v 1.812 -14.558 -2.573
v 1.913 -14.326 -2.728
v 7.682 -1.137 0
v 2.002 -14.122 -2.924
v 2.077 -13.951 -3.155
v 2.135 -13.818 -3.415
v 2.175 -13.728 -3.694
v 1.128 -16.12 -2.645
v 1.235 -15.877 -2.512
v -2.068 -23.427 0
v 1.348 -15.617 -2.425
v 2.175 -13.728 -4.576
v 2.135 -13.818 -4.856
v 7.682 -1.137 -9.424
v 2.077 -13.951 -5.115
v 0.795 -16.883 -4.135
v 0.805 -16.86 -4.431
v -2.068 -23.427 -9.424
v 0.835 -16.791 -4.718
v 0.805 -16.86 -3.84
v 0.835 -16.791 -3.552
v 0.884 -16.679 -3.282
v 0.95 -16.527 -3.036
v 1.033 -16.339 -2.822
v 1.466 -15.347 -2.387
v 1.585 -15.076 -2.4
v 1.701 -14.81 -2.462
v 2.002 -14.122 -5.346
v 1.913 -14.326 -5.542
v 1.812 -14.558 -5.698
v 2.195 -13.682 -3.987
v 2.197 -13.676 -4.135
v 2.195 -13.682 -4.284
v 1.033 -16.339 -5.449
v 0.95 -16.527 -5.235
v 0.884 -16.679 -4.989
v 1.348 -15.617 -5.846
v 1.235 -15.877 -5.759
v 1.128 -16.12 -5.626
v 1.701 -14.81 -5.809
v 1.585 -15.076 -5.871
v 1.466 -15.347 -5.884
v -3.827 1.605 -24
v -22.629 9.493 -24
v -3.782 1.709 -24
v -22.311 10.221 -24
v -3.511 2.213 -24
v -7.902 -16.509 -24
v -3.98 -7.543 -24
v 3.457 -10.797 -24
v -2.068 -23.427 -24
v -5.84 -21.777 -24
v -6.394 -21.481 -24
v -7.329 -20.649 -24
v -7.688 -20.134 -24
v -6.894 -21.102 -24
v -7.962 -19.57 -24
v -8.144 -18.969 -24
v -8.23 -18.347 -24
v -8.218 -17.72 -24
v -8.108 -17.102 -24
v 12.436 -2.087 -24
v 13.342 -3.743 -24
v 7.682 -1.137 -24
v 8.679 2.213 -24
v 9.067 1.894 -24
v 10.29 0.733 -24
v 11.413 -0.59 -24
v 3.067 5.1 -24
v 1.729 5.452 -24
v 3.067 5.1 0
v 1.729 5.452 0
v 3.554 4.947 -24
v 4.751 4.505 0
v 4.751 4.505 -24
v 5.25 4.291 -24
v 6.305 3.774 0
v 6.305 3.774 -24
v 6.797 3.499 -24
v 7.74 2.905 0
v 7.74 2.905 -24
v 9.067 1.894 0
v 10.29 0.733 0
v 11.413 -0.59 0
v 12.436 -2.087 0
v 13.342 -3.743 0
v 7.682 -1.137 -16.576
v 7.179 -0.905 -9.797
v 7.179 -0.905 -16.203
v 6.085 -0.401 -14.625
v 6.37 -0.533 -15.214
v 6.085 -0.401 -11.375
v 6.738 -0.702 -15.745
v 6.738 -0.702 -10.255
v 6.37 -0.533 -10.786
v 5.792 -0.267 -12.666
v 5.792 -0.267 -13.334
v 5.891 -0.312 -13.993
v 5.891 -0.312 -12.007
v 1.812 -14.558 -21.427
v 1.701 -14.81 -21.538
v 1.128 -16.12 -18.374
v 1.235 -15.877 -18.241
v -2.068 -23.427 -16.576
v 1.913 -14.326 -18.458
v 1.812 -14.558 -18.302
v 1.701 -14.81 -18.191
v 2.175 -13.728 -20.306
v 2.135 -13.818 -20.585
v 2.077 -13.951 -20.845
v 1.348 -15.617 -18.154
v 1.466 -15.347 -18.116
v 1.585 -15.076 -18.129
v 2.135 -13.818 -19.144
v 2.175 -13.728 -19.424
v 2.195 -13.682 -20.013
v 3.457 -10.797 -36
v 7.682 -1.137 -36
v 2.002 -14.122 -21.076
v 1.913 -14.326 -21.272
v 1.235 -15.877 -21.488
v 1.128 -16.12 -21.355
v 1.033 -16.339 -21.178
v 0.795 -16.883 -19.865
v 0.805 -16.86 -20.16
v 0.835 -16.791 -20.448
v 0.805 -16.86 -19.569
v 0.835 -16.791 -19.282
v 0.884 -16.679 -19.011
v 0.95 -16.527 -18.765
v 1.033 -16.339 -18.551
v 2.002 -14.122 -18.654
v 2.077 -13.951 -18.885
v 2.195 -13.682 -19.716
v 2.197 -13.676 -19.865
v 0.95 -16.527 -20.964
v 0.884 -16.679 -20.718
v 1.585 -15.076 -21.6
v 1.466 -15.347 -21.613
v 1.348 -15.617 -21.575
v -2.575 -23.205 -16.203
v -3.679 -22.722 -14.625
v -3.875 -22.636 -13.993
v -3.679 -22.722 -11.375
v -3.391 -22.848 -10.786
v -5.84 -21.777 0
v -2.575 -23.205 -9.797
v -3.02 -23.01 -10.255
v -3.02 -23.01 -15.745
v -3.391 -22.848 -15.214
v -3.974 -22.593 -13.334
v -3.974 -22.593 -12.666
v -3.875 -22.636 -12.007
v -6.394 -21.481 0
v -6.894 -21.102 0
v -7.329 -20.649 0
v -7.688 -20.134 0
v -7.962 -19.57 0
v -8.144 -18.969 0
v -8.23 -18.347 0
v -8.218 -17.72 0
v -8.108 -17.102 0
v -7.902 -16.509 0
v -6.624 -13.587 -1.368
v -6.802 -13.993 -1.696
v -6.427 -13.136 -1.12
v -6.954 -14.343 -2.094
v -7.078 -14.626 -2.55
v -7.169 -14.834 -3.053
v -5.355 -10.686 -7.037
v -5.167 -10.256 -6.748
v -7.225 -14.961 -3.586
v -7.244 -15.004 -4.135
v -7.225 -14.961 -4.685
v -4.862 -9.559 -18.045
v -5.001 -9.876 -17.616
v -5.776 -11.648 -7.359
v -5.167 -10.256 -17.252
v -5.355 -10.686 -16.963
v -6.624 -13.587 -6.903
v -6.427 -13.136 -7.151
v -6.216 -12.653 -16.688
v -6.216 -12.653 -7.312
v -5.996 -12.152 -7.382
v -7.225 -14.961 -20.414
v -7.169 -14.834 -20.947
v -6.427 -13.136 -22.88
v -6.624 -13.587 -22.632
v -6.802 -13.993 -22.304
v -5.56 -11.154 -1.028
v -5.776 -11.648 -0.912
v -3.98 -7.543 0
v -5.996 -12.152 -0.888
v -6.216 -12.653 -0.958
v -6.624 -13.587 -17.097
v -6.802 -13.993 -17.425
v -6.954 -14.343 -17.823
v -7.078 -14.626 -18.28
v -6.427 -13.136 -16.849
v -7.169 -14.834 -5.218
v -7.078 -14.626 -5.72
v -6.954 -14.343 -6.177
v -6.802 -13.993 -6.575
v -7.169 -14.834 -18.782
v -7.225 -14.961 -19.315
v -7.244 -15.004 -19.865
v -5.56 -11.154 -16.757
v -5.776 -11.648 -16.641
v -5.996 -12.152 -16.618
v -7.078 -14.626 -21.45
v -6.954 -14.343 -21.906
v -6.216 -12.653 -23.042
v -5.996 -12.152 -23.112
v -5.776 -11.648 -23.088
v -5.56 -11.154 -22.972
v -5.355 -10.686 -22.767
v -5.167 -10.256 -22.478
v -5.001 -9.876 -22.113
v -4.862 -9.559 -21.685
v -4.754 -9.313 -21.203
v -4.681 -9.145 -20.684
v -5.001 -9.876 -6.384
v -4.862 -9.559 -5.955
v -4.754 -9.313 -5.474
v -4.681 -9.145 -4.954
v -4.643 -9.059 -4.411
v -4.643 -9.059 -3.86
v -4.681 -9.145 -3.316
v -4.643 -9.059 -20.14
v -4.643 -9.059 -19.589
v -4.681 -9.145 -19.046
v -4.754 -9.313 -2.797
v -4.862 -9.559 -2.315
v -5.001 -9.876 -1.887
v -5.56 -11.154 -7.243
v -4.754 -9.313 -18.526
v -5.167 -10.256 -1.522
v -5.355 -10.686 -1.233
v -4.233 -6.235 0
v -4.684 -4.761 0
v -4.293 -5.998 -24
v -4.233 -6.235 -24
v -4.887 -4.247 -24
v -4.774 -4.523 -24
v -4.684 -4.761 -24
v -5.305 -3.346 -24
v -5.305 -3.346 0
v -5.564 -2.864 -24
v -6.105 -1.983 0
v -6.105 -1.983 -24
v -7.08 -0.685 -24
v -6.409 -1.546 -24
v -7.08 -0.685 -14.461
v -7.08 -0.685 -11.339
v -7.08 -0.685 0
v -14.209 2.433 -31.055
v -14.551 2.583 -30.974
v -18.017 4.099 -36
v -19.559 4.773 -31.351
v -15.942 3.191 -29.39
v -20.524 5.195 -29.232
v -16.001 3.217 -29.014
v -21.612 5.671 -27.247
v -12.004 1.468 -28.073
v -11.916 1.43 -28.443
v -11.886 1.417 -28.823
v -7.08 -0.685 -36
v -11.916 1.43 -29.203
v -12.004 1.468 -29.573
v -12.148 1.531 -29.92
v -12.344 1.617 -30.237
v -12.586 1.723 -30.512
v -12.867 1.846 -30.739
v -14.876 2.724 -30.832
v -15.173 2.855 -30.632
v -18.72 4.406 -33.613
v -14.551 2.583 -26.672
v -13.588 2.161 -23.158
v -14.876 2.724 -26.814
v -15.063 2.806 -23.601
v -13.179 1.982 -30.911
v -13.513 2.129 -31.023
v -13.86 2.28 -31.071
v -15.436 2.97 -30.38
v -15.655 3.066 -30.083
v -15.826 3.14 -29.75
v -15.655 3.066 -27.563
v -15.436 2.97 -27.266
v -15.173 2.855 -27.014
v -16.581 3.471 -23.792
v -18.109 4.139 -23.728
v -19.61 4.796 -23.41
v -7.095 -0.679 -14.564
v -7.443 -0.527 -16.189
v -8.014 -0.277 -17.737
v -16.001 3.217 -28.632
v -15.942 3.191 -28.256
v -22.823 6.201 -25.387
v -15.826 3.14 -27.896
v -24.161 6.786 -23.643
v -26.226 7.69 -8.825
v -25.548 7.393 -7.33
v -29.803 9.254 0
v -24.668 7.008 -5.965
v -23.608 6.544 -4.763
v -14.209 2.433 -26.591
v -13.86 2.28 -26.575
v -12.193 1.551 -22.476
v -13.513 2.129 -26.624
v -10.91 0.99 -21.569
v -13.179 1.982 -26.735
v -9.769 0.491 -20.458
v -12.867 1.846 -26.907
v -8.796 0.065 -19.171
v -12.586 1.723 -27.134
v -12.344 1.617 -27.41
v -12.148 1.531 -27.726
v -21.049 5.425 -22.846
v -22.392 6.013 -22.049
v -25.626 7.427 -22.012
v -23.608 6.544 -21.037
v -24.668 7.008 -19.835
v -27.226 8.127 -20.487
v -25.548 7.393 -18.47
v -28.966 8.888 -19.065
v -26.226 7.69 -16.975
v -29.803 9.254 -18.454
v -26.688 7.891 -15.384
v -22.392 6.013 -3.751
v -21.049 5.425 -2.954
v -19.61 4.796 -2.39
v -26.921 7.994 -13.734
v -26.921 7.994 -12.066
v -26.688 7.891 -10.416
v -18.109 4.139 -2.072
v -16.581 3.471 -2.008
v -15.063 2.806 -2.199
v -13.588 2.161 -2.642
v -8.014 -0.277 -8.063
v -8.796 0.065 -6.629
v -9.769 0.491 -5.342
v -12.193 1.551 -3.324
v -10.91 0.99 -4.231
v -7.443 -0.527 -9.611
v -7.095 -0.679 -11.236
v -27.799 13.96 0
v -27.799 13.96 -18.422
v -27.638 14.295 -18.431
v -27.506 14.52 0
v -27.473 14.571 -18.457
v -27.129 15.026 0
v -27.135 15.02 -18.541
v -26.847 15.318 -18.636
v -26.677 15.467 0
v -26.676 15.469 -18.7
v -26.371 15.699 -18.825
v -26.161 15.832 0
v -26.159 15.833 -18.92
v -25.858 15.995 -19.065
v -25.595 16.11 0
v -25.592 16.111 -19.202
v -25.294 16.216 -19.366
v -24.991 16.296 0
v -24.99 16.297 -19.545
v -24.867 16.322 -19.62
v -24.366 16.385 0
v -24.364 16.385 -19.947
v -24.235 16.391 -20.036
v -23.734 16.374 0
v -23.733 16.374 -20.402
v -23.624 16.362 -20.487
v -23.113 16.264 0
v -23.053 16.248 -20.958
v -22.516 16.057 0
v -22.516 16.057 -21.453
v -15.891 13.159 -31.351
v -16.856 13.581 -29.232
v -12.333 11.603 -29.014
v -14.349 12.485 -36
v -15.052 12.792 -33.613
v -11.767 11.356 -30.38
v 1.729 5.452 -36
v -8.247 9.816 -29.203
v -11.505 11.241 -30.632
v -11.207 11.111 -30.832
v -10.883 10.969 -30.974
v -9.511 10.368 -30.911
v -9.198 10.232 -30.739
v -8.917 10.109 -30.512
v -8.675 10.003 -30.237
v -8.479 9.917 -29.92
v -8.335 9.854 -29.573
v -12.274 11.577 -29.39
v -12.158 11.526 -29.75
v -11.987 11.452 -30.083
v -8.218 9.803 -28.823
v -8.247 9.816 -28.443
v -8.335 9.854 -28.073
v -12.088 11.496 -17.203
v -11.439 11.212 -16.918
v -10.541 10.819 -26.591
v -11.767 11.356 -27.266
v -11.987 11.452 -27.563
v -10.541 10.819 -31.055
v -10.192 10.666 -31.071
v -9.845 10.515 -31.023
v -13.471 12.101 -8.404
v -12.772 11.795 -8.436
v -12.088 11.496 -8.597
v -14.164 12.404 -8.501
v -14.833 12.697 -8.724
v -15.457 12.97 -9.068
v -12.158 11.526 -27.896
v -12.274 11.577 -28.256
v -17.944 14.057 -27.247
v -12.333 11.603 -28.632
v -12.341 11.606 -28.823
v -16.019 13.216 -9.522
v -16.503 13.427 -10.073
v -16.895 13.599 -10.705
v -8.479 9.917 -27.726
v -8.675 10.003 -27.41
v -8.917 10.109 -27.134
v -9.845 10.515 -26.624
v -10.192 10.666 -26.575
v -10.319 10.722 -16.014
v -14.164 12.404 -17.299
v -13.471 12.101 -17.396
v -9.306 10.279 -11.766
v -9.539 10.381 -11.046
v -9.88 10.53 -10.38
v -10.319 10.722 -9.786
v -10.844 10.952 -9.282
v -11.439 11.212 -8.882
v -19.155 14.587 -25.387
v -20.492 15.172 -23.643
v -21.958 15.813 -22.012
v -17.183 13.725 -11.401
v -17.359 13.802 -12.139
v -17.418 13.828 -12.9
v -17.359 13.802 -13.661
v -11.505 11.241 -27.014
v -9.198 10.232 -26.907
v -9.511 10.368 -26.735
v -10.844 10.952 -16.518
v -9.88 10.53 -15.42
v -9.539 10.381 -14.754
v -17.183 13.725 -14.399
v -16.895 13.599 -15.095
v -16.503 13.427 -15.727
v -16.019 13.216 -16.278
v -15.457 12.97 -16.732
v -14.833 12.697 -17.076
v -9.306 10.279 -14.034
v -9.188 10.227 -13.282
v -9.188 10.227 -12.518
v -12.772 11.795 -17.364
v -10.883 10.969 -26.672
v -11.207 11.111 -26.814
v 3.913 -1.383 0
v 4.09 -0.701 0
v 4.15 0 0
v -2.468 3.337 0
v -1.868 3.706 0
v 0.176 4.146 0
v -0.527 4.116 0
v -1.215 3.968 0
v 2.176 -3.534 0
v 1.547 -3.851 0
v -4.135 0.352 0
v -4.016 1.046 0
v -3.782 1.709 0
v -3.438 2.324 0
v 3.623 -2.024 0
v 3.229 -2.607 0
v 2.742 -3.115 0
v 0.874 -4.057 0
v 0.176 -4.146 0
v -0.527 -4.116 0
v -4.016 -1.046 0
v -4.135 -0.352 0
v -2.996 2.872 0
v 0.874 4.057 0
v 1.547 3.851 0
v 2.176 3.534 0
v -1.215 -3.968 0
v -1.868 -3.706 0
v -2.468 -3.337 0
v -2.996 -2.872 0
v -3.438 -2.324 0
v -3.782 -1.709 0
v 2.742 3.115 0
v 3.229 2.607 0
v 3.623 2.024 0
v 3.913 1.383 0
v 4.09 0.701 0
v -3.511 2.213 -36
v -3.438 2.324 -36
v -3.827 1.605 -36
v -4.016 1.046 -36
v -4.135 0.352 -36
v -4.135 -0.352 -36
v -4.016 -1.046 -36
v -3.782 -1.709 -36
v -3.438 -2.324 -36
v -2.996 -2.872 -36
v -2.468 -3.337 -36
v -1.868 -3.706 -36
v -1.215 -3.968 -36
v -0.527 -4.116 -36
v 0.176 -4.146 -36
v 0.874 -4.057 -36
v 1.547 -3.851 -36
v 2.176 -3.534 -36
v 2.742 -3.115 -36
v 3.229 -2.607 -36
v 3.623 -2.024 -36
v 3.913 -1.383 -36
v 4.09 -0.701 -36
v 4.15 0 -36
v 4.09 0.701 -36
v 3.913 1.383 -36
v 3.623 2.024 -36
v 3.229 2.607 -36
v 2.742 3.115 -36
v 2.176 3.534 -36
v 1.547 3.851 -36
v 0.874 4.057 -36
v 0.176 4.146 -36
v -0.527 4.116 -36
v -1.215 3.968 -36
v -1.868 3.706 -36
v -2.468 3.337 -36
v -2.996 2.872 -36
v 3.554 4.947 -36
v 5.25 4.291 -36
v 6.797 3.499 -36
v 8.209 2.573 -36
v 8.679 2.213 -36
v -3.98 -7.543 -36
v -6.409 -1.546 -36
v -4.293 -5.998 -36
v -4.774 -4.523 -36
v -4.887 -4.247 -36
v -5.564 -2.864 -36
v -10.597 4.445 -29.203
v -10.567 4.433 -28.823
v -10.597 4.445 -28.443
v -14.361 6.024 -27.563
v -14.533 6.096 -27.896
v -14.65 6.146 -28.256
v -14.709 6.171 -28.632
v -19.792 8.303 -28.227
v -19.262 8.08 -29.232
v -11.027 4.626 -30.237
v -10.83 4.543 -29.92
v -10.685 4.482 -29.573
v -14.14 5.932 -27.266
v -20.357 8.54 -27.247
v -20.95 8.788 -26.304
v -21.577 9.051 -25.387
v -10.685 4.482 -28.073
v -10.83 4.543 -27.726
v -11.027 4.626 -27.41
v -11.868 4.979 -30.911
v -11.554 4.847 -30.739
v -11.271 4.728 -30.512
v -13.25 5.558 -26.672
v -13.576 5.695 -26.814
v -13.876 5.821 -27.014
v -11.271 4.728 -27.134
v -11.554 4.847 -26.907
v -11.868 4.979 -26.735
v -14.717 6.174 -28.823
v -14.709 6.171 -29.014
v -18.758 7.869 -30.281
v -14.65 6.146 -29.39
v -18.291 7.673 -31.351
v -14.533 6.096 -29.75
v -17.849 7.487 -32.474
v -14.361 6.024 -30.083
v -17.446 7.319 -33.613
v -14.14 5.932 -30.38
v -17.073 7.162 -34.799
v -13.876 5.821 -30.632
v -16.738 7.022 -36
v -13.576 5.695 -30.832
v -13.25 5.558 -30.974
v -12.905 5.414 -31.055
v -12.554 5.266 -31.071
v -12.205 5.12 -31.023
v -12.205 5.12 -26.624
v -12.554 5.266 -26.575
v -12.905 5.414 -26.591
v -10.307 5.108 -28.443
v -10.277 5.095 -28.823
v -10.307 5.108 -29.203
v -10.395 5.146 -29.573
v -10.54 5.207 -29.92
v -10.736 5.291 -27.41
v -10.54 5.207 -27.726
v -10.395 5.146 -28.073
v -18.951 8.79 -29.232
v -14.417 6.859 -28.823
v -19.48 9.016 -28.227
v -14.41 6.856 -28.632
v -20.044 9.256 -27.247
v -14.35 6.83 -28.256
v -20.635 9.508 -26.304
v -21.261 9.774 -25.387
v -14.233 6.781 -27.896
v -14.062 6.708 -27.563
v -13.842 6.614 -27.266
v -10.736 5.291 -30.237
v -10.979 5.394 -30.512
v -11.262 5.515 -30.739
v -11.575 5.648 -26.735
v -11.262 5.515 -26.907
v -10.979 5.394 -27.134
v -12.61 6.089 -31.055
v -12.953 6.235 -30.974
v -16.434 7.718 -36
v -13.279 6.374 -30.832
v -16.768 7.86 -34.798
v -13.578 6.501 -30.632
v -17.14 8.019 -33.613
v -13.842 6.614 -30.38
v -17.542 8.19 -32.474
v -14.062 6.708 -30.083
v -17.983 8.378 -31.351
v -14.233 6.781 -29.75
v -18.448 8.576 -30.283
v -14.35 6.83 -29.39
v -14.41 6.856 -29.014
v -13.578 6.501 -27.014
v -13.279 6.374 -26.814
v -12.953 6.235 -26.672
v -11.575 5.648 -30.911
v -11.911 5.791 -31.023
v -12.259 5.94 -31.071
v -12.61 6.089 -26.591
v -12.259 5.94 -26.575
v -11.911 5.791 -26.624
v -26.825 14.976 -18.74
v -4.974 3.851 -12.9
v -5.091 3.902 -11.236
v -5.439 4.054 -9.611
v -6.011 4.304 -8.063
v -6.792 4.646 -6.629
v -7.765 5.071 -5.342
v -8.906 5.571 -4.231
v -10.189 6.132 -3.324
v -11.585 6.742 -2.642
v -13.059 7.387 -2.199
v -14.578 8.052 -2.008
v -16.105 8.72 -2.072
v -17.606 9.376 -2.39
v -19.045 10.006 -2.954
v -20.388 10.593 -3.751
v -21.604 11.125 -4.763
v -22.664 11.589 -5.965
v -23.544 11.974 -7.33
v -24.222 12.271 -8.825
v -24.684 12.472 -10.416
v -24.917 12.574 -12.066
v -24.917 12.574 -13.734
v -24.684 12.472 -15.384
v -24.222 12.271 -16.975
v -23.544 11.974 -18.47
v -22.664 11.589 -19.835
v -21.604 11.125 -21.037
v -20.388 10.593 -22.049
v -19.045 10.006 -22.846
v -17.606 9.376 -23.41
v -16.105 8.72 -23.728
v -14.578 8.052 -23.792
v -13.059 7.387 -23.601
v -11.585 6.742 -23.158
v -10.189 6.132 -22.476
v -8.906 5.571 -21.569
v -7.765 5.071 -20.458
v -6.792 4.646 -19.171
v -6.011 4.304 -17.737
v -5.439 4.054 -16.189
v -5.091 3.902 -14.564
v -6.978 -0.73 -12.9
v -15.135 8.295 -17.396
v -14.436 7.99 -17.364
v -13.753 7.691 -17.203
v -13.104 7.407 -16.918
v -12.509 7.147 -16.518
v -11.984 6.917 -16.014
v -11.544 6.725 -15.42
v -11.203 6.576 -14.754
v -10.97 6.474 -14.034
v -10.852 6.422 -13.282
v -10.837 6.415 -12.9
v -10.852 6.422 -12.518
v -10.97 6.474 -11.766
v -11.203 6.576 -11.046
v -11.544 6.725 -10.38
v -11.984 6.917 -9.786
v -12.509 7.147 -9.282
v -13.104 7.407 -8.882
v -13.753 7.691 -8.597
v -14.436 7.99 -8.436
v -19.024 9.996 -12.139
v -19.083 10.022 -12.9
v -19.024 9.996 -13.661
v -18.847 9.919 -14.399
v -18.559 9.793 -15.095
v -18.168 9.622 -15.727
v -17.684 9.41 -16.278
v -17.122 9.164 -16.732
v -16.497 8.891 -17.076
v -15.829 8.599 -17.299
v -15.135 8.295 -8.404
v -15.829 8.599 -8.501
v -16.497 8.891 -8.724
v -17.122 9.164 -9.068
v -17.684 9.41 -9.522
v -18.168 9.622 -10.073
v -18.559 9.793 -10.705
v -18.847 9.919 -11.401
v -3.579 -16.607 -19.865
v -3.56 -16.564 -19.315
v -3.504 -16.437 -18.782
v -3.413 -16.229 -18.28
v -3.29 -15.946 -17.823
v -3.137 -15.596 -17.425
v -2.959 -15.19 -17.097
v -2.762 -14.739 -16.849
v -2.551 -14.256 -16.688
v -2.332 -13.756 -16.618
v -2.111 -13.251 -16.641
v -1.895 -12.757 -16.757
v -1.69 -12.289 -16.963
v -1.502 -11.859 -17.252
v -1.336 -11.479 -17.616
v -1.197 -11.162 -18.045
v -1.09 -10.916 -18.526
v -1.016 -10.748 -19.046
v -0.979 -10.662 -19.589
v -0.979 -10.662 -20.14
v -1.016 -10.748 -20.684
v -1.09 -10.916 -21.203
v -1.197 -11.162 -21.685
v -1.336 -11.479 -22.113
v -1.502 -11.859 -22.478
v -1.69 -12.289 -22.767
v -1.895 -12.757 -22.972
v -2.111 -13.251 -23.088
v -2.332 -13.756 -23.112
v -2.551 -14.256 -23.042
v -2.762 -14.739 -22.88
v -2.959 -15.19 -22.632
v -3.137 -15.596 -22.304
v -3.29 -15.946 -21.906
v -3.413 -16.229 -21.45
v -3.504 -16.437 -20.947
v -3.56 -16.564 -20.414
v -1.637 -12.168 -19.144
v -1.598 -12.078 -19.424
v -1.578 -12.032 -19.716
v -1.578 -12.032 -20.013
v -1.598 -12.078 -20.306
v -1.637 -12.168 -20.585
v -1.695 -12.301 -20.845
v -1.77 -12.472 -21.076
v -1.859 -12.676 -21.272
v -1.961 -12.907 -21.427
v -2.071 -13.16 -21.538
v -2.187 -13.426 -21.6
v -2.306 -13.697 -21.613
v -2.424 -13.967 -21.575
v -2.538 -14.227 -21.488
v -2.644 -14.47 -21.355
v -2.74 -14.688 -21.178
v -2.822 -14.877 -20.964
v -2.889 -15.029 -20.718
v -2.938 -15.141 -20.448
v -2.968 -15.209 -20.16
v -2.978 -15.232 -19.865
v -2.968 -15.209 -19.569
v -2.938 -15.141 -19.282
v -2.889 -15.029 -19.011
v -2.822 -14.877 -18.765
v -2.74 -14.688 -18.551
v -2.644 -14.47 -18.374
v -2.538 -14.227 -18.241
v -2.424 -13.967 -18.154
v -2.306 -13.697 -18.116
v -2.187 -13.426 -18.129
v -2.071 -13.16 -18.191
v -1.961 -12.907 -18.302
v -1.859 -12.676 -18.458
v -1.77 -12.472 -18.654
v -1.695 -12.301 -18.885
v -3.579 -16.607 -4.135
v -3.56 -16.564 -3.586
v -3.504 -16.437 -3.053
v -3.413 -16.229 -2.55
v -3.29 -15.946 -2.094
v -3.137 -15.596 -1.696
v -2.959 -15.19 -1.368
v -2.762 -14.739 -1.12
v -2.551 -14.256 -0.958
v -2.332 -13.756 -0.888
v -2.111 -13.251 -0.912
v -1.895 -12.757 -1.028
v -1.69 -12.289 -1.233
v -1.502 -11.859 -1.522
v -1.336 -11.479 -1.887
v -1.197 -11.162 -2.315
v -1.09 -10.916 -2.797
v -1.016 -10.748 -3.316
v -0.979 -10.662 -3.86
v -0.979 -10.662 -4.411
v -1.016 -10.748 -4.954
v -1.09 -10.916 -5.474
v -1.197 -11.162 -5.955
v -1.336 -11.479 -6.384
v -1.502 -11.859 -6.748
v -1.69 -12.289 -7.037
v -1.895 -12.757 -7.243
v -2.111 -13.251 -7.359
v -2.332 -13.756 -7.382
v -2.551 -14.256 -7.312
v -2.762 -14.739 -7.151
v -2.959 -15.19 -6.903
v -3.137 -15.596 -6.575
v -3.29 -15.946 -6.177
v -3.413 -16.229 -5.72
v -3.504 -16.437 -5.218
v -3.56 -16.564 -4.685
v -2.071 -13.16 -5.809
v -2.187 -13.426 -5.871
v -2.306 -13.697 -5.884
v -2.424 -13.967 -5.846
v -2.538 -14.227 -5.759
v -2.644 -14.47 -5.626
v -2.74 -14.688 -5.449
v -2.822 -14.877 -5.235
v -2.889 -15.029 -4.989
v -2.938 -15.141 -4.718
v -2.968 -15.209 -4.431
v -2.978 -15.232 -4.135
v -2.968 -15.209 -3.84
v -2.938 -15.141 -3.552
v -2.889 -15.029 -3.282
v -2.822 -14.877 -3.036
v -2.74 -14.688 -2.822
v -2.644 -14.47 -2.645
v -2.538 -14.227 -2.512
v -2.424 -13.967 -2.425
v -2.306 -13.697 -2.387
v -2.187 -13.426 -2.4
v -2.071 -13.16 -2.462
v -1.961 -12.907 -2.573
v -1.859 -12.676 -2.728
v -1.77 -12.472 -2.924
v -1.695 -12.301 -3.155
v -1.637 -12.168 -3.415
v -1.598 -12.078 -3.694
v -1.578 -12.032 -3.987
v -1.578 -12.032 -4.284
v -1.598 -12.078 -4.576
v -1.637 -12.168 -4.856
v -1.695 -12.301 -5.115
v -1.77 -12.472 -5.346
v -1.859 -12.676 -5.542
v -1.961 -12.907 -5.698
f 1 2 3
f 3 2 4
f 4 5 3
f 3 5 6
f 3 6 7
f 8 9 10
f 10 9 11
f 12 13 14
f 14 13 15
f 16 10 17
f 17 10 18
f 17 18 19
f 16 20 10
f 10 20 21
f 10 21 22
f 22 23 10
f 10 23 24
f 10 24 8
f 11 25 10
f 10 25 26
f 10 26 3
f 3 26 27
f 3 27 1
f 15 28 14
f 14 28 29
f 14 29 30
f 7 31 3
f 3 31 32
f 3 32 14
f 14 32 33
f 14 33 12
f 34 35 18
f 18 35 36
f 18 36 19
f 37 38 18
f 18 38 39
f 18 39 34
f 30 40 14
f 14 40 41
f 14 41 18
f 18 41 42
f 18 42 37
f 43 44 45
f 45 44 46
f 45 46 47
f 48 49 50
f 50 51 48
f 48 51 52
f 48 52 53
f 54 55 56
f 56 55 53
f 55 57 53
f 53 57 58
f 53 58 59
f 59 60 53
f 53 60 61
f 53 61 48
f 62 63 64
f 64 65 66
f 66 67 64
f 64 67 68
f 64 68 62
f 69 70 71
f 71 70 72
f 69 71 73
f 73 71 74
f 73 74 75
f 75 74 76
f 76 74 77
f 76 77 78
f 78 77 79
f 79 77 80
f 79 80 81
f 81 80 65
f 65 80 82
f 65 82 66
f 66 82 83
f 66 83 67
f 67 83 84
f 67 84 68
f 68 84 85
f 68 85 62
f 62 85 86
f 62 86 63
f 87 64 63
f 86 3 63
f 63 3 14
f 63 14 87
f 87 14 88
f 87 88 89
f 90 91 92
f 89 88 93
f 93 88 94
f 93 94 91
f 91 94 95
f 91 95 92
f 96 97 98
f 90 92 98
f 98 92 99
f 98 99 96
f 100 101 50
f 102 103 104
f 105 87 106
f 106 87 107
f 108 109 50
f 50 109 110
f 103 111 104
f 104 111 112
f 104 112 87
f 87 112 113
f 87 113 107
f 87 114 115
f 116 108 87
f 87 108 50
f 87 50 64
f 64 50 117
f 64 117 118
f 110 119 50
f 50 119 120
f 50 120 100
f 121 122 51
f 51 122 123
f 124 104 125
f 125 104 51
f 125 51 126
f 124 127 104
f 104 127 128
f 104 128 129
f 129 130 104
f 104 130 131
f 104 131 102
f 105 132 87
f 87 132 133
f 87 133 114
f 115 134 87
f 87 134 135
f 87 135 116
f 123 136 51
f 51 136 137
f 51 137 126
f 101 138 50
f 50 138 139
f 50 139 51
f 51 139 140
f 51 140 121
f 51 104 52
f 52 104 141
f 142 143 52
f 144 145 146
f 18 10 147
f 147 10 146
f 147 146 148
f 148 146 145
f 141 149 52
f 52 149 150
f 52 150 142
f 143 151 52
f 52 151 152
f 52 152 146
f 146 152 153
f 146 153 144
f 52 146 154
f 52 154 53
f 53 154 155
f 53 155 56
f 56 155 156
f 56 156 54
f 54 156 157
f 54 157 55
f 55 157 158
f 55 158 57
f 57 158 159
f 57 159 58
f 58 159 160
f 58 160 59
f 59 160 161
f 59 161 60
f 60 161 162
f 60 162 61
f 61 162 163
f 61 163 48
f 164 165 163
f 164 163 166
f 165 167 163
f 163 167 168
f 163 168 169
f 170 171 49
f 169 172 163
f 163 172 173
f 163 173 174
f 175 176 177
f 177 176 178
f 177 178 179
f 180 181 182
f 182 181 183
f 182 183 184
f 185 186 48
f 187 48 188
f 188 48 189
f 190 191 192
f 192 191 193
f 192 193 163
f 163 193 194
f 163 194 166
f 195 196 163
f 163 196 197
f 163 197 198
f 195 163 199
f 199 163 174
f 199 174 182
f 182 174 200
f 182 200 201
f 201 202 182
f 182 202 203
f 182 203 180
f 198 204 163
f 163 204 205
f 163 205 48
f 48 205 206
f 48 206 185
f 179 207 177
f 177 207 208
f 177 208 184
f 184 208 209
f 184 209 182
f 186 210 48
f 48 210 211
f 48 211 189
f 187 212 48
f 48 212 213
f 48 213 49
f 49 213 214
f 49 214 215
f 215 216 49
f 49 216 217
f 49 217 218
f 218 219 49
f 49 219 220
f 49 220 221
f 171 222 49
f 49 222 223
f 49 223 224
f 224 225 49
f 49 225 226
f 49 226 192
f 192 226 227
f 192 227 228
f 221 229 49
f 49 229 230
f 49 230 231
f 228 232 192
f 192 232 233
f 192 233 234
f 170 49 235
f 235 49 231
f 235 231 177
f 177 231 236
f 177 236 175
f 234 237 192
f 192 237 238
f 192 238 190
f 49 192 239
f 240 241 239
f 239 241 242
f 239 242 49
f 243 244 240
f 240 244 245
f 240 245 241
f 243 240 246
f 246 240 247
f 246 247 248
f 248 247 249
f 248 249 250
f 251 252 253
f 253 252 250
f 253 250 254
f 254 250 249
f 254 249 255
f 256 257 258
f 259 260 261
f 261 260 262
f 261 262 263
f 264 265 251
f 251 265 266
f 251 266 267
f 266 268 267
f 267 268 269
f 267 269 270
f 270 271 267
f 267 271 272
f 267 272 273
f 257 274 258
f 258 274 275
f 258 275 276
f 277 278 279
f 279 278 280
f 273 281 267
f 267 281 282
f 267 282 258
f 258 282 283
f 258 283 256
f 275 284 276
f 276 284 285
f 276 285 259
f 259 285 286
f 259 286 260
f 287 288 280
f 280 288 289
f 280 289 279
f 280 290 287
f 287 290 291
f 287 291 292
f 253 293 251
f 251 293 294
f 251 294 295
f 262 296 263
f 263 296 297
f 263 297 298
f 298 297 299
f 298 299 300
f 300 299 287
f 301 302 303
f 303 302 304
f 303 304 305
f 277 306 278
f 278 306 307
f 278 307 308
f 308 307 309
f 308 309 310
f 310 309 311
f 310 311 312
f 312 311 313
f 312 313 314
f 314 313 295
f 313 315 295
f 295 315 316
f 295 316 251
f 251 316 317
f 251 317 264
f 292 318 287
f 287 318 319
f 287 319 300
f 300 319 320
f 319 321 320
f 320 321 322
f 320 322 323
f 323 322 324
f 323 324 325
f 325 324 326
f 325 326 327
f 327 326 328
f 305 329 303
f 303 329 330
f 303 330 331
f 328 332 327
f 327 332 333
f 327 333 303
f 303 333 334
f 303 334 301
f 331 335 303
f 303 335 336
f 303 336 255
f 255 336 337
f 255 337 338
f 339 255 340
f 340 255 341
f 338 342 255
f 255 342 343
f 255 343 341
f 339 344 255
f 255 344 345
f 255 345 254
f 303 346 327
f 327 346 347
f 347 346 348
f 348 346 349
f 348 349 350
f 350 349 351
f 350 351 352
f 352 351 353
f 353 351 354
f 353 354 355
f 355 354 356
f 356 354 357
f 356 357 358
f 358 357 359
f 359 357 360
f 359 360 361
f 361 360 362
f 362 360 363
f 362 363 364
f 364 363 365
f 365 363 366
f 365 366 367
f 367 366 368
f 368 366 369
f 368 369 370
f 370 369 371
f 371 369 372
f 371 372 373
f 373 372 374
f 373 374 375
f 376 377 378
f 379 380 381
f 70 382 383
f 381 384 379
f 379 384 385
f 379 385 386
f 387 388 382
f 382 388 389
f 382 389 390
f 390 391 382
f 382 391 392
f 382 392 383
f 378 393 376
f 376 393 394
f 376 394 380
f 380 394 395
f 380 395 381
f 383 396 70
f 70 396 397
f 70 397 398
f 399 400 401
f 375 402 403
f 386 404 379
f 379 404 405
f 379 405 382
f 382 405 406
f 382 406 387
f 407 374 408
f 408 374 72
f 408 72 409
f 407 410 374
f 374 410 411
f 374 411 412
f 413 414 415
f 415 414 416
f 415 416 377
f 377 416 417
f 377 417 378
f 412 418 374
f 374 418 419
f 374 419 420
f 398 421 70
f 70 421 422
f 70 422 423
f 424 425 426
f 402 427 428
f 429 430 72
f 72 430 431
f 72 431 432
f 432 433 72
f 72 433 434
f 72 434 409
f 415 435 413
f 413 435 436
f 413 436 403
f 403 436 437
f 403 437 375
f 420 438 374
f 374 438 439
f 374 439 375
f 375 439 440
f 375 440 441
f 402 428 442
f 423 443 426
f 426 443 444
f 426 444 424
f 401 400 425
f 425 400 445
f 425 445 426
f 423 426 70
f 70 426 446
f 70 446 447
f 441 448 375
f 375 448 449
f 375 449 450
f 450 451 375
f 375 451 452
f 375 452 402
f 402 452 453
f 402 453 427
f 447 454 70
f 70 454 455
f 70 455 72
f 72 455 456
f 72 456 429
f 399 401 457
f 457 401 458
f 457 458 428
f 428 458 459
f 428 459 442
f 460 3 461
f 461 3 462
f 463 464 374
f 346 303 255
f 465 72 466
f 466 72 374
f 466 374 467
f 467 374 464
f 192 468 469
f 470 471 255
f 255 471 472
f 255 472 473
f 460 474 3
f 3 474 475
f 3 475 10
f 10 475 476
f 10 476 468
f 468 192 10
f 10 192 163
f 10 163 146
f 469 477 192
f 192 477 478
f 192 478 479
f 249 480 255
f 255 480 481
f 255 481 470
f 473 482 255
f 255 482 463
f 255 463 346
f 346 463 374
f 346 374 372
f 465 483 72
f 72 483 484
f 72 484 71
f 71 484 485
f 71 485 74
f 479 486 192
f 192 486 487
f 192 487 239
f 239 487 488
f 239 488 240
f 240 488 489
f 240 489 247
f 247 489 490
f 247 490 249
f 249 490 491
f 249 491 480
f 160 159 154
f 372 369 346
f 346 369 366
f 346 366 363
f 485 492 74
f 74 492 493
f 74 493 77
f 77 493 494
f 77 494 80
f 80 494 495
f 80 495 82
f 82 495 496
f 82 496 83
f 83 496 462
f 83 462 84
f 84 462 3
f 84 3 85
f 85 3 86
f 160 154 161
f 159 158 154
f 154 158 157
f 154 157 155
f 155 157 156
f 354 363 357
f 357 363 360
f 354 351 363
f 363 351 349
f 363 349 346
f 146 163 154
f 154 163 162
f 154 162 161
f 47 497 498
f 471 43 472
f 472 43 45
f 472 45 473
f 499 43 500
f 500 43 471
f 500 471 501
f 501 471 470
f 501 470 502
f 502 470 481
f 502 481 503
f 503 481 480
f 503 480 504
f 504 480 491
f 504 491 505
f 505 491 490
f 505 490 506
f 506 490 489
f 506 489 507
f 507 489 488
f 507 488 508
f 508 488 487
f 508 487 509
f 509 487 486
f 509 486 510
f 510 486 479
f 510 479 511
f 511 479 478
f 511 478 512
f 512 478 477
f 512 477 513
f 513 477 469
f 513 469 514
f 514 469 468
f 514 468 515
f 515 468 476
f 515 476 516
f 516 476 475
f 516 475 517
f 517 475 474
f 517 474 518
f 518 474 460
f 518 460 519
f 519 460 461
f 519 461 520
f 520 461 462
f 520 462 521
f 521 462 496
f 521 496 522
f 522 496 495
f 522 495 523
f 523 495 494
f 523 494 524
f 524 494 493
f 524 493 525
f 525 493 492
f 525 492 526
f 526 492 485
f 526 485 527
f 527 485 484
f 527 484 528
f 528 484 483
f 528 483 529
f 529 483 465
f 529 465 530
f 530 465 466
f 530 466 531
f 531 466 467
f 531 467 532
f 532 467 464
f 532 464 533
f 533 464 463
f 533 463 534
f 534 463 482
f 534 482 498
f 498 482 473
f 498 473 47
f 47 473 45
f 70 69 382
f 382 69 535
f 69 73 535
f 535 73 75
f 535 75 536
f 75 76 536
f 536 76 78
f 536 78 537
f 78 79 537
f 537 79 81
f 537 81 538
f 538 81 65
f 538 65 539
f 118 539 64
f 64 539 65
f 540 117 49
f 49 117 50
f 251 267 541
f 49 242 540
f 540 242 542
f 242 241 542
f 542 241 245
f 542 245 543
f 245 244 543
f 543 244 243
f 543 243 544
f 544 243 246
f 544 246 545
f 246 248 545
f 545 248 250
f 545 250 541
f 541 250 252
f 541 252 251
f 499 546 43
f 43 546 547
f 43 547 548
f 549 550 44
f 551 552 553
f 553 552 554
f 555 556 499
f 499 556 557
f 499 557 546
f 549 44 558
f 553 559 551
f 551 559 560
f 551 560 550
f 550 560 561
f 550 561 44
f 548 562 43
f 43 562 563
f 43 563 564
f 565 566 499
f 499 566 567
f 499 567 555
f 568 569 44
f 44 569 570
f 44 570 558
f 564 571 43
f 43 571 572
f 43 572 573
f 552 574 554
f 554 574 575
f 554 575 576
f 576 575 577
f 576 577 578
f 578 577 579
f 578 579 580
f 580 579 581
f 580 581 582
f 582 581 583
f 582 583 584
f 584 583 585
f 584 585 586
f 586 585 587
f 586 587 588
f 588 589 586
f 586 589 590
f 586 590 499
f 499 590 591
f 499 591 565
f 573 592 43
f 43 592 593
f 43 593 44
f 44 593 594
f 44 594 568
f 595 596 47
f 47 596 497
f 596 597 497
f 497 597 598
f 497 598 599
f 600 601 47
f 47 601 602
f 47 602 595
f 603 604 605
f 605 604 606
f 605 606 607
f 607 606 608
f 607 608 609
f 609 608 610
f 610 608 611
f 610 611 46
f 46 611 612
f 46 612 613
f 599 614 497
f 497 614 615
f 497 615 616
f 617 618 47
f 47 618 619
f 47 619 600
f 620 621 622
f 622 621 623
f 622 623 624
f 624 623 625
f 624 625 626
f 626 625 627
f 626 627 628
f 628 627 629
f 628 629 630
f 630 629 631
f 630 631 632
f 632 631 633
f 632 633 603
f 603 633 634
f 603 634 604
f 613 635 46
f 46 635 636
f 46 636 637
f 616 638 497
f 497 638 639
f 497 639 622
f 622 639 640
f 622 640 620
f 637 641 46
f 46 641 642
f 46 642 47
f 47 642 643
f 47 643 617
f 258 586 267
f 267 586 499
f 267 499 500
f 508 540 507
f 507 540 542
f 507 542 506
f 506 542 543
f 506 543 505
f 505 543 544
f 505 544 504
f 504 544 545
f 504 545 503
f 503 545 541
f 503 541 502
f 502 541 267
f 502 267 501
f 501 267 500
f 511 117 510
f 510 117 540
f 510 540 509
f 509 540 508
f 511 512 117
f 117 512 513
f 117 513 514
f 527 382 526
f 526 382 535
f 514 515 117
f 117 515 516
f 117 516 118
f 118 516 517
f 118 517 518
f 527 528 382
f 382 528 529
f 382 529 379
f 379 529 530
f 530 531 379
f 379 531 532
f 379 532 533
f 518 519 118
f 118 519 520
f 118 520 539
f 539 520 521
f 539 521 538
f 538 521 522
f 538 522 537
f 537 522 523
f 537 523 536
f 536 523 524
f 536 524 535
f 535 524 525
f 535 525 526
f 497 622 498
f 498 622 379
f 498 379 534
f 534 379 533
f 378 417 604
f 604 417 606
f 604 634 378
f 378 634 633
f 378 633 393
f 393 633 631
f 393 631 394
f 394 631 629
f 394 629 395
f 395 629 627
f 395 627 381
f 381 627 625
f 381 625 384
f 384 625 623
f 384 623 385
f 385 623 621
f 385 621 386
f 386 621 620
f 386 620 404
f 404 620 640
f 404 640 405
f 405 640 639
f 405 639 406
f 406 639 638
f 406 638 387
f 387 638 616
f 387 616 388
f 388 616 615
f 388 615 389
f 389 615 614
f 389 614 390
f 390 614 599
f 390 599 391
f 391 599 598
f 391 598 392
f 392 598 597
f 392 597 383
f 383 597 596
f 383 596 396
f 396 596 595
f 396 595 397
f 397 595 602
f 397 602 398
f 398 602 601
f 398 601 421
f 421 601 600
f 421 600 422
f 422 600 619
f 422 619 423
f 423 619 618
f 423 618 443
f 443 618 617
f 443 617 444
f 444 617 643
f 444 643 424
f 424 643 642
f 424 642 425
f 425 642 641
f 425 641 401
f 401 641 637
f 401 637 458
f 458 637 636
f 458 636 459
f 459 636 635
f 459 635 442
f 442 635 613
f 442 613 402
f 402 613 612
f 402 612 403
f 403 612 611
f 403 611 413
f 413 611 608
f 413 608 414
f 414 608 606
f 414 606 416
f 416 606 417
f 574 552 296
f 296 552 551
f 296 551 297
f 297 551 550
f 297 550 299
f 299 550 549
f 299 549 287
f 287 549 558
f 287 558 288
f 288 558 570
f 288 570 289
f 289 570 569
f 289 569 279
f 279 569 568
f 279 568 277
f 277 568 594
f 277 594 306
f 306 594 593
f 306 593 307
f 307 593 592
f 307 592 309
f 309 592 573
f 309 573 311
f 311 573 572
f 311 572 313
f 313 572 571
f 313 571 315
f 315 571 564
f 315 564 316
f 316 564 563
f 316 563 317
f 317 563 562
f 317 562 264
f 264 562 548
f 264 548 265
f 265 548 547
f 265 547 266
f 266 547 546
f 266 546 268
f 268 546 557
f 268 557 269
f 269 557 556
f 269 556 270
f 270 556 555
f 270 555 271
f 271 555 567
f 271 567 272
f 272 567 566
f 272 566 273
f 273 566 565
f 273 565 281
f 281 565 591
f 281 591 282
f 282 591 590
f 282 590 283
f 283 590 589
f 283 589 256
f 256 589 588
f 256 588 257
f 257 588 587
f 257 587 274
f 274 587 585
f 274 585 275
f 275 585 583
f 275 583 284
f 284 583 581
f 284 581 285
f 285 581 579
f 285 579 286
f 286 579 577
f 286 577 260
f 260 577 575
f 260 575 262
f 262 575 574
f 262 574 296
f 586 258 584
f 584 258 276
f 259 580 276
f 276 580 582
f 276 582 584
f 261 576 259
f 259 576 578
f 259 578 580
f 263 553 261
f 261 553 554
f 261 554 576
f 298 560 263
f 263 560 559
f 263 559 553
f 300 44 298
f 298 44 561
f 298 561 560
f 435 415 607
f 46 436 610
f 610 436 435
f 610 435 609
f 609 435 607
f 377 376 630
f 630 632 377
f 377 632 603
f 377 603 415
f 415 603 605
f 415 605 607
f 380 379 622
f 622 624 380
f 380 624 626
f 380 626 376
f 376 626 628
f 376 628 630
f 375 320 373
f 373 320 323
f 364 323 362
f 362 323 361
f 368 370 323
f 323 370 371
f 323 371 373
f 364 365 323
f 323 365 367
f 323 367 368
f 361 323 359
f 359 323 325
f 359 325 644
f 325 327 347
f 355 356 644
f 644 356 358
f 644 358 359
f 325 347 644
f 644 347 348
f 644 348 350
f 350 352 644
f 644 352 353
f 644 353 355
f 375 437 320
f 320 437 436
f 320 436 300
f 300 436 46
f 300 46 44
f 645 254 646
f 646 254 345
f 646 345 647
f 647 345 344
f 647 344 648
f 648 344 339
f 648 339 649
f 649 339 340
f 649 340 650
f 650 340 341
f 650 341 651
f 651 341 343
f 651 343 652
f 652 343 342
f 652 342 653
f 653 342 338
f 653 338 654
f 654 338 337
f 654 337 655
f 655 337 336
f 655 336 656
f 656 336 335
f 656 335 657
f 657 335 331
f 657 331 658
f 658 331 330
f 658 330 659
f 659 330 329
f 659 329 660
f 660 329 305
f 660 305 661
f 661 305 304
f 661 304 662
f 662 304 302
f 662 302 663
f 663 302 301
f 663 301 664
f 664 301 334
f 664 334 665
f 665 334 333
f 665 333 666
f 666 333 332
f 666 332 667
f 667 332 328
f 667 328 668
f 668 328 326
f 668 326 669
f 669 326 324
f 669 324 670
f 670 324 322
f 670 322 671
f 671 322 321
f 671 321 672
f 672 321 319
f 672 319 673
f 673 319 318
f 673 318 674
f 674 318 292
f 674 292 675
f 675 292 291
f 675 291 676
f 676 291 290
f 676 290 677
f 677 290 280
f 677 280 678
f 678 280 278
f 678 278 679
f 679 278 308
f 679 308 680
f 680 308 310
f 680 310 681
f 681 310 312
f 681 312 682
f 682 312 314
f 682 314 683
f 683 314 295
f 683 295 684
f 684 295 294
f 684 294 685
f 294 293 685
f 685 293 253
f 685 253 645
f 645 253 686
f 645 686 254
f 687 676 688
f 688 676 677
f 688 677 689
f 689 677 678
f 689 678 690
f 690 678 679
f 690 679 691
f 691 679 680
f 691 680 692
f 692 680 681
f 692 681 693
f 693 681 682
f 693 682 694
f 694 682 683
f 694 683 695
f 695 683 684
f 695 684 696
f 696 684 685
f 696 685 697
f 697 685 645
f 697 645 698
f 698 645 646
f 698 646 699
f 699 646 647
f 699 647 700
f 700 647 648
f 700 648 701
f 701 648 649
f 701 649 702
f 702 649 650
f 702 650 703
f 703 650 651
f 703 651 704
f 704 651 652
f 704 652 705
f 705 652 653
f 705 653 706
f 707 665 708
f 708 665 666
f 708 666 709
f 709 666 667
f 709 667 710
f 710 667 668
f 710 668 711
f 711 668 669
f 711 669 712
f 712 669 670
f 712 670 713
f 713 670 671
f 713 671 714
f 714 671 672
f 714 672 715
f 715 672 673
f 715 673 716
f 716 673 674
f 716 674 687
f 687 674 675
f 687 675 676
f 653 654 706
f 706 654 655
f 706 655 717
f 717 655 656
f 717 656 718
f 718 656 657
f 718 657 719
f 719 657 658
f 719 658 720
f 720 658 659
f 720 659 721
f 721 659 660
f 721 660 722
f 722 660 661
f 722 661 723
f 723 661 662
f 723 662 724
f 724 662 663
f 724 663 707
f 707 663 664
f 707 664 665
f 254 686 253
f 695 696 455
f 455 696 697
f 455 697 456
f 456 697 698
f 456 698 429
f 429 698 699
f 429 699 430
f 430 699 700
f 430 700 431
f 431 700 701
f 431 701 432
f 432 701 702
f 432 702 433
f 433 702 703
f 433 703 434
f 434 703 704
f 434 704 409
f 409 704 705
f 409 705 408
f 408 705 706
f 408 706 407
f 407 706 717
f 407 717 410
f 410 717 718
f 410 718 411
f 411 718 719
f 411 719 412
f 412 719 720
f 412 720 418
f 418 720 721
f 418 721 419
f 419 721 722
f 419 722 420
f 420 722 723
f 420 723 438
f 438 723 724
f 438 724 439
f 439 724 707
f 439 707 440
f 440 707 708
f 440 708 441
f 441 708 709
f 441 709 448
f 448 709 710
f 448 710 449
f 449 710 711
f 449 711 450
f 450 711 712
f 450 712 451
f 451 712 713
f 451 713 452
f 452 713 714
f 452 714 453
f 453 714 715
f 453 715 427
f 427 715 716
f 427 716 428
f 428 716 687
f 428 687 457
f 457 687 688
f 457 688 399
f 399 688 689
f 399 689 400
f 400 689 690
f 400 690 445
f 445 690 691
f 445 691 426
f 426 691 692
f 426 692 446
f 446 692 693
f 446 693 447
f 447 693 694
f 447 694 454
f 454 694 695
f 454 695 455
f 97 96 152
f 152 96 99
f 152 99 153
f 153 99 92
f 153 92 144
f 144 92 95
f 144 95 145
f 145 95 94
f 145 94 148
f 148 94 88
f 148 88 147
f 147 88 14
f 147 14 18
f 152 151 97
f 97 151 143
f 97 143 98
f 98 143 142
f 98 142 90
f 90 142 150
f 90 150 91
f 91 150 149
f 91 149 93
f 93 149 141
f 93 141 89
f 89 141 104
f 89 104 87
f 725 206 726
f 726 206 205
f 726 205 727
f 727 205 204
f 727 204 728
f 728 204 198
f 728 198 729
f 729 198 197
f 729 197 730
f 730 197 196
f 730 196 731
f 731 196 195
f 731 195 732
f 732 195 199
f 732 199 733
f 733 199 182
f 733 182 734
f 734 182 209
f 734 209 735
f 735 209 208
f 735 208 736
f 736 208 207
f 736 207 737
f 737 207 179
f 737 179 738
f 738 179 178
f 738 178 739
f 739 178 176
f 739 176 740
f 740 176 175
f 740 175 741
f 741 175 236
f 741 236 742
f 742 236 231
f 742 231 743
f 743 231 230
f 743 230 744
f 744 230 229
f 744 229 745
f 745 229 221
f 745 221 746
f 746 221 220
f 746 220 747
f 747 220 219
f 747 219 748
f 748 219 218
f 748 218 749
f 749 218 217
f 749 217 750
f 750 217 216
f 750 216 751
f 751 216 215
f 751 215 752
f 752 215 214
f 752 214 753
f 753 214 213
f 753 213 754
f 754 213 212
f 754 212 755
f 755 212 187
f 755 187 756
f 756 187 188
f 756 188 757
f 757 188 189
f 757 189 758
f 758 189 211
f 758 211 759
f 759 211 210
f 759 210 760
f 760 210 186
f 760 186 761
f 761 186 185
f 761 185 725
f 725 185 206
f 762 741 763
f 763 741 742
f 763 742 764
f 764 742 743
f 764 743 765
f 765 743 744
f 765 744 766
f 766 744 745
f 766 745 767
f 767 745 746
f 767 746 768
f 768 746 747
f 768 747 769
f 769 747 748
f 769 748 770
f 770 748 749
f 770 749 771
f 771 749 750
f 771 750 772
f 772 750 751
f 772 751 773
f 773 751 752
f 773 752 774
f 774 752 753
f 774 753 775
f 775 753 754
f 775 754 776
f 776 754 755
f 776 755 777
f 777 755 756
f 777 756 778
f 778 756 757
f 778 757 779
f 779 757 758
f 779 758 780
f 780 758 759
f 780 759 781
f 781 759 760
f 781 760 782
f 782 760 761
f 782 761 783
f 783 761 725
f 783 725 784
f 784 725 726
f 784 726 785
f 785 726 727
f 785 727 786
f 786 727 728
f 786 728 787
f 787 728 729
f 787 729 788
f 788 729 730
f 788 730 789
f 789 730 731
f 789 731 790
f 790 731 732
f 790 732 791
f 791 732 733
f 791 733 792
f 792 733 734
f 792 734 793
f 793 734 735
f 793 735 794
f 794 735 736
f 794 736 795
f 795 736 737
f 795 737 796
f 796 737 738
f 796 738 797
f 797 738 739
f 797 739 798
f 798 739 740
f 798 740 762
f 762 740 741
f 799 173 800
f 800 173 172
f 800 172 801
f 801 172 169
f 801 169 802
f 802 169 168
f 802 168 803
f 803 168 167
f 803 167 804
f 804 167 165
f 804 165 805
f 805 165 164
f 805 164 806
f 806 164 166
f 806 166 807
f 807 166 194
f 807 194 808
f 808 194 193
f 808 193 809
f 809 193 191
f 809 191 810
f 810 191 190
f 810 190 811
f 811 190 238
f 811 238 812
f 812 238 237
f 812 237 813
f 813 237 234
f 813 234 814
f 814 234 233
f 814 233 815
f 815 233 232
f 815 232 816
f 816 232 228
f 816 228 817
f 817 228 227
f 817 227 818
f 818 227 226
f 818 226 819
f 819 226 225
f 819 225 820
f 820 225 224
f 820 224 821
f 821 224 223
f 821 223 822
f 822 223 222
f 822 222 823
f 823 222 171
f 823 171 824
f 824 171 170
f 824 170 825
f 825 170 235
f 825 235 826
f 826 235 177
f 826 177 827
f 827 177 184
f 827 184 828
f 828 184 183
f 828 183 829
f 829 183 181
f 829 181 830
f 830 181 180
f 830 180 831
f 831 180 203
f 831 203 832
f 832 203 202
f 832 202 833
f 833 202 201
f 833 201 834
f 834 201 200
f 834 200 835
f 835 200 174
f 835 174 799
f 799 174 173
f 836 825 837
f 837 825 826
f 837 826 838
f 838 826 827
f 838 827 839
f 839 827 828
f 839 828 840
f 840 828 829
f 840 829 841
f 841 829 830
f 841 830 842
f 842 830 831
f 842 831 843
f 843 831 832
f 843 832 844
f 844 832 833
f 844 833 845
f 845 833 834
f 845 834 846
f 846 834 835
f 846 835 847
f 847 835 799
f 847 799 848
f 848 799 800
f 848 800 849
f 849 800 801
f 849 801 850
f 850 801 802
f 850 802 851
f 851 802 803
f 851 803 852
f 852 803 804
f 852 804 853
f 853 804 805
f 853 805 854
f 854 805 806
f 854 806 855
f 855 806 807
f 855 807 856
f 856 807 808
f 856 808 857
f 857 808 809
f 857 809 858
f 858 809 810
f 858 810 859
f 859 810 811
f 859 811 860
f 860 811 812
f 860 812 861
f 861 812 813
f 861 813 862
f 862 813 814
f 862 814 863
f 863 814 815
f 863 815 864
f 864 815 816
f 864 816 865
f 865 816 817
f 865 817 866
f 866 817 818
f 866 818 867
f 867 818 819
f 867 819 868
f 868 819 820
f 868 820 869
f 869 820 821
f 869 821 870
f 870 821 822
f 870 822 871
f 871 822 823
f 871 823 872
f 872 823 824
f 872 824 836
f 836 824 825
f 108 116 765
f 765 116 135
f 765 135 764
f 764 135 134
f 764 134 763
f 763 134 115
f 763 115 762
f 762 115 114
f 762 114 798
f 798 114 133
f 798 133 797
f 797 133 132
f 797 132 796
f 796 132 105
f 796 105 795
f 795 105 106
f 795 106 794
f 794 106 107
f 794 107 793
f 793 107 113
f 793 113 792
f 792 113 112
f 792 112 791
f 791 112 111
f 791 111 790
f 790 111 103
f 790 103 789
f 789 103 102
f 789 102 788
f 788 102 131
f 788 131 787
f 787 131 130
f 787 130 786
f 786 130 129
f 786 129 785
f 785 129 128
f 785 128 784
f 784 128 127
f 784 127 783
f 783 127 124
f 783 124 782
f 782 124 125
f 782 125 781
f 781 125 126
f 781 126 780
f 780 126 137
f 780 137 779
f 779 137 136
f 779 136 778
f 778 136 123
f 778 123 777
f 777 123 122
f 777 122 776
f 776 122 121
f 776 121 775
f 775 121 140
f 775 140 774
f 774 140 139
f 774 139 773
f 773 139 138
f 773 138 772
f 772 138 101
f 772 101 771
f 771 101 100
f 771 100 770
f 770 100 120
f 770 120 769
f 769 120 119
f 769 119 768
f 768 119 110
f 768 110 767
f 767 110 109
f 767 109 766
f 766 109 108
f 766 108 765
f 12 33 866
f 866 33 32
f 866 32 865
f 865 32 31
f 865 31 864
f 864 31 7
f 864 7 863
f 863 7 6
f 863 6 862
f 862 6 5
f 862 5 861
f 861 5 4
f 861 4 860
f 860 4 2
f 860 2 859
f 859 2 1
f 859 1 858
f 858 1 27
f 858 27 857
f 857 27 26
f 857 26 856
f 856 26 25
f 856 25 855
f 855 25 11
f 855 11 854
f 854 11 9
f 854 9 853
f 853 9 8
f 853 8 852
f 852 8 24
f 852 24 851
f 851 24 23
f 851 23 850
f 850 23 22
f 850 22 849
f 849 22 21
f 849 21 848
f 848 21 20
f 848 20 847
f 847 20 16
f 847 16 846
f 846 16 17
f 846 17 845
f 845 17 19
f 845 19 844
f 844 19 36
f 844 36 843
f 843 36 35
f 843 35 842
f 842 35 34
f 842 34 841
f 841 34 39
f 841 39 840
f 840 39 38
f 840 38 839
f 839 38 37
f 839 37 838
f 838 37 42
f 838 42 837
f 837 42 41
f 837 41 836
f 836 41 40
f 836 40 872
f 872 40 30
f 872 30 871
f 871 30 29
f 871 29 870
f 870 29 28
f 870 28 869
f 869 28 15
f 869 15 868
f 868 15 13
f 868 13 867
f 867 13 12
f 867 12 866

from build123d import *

# Parameters (mm, degrees)
SKETCH1_R           = 4.15
BOSS_EXTRUDE1_DEPTH = 24
BOSS_EXTRUDE2_DEPTH = 12
SKETCH4_R           = 2.25
CUT_EXTRUDE1_DEPTH  = 51.135027226
CUT_EXTRUDE2_DEPTH  = 51.135027226
SKETCH6_R           = 10.9
CUT_EXTRUDE3_DEPTH  = 5
SKETCH7_R           = 4.5
CUT_EXTRUDE4_DEPTH  = 5
CUT_EXTRUDE5_REACH  = 58.104
SKETCH8_R           = 4.1
SKETCH10_R          = 3.25
CUT_EXTRUDE6_DEPTH  = 4
SKETCH11_R          = 1.75
CUT_EXTRUDE7_DEPTH  = 14


with BuildPart() as part:
    # Sketch1 → Boss-Extrude1 (new body)
    with BuildSketch(Plane.XY):
        with BuildLine():
            Line((13.341629993, -3.742589758), (7.682372306, -1.136974107))
            Line((7.682372306, -1.136974107), (-2.0678902, -23.426775412))
            Line((-2.0678902, -23.426775412), (-5.840324092, -21.776593778))
            ThreePointArc((-5.840324092, -21.776593778), (-7.962146661, -19.569683724), (-7.901980723, -16.508807532))
            Line((-7.901980723, -16.508807532), (-3.98023327, -7.54341081))
            add(Edge.make_bspline(
                [(-7.080436324, -0.68533899), (-4.531901983, -3.715550368), (-3.98023327, -7.54341081)],
                knots=[0, 0, 0, 1, 1, 1], degree=2))
            Line((-7.080436324, -0.68533899), (-29.803412918, 9.254408057))
            Line((-29.803412918, 9.254408057), (-27.798908258, 13.960167121))
            ThreePointArc((-27.798908258, 13.960167121), (-25.594658653, 16.110387521), (-22.515803889, 16.057307996))
            Line((-22.515803889, 16.057307996), (1.72881799, 5.451945282))
            add(Edge.make_bspline(
                [(1.72881799, 5.451945282), (9.747838199, 3.631364235), (13.341629993, -3.742589758)],
                knots=[0, 0, 0, 1, 1, 1], degree=2))
        make_face()
        Circle(SKETCH1_R, mode=Mode.SUBTRACT)
    extrude(amount=-BOSS_EXTRUDE1_DEPTH)

    # Sketch3 → Boss-Extrude2 (add)
    with BuildSketch(Plane(origin=(0, 0, -24), x_dir=(-1, 0, 0), z_dir=(0, 0, -1))):
        with BuildLine():
            Line((-7.682372306, -1.136974107), (-8.679331285, 2.212996201))
            add(Edge.make_bspline(
                [(-1.728818003, 5.451945279), (-5.764462803, 4.535721319), (-8.679331285, 2.212996201)],
                knots=[0, 0, 0, 1, 1, 1], degree=2))
            Line((-1.728818003, 5.451945279), (22.515803889, 16.057307996))
            ThreePointArc((22.515803889, 16.057307996), (25.594658653, 16.110387521), (27.798908258, 13.960167121))
            Line((27.798908258, 13.960167121), (28.304096394, 12.774191506))
            Line((28.304096394, 12.774191506), (3.510718988, 2.212996201))
            ThreePointArc((3.510718988, 2.212996201), (-3.681374953, -1.915718783), (3.826915418, 1.605371728))
            Line((3.826915418, 1.605371728), (28.62962492, 12.009983349))
            Line((28.62962492, 12.009983349), (29.803412918, 9.254408057))
            Line((29.803412918, 9.254408057), (7.080436358, -0.685338949))
            add(Edge.make_bspline(
                [(3.98023327, -7.54341081), (4.531901987, -3.715550342), (7.080436358, -0.685338949)],
                knots=[0, 0, 0, 1, 1, 1], degree=2))
            Line((3.98023327, -7.54341081), (-3.456922061, -10.796657252))
            Line((-3.456922061, -10.796657252), (-7.682372306, -1.136974107))
        make_face()
    extrude(amount=BOSS_EXTRUDE2_DEPTH)

    # Sketch4 → Cut-Extrude1 (cut, through all)
    with BuildSketch(Plane(origin=(-1.388852746, -3.17501726, 0), x_dir=(0.9161803596748023, -0.40076620185109174, 0), z_dir=(-0.4007662018510917, -0.9161803596748022, 0))):
        with Locations(Location((-13.70758094, -28.823038163, 0), (0, 0, 180))):
            Circle(SKETCH4_R)
    extrude(amount=-CUT_EXTRUDE1_DEPTH, mode=Mode.SUBTRACT)

    # Sketch5 → Cut-Extrude2 (cut, through all)
    with BuildSketch(Plane(origin=(-1.388852746, -3.17501726, 0), x_dir=(0.9161803596748023, -0.40076620185109174, 0), z_dir=(-0.4007662018510917, -0.9161803596748022, 0))):
        with BuildLine():
            Line((-18.149274911, -36), (-34.697304605, -37.023423696))
            Line((-34.697304605, -37.023423696), (-31.063763643, -18.422303423))
            add(Edge.make_bspline(
                [(-18.149274911, -36), (-21.35728774, -24.660432841), (-31.063763643, -18.422303423)],
                knots=[0, 0, 0, 1, 1, 1], degree=2))
        make_face()
    extrude(amount=-CUT_EXTRUDE2_DEPTH, mode=Mode.SUBTRACT)

    # Sketch6 → Cut-Extrude3 (cut)
    with BuildSketch(Plane(origin=(-1.388852746, -3.17501726, 0), x_dir=(0.9161803596748023, -0.40076620185109174, 0), z_dir=(-0.4007662018510917, -0.9161803596748022, 0))):
        with Locations((-17, -12.900000194)):
            Circle(SKETCH6_R)
    extrude(amount=-CUT_EXTRUDE3_DEPTH, mode=Mode.SUBTRACT)

    # Sketch7 → Cut-Extrude4 (cut)
    with BuildSketch(Plane(origin=(2.279484819, 5.211066233, 0), x_dir=(0.9161803596748023, -0.40076620185109163, 0), z_dir=(0.40076620185109163, 0.9161803596748023, 0))):
        with Locations(Location((-17, 12.900000194, 0), (0, 0, 180))):
            Circle(SKETCH7_R)
    extrude(amount=-CUT_EXTRUDE4_DEPTH, mode=Mode.SUBTRACT)

    # Cut-Extrude5: up to this plane
    cut_extrude5_end = Plane(origin=(13.341629993, -3.742589758, -24), z_dir=(-0.41821784159009956, -0.9083467603155299, 0))
    # Sketch8 → Cut-Extrude5 (cut, up to the surface)
    with BuildSketch(Plane(origin=(-8.933836899, -20.423393653, 0), x_dir=(0.9161803596748023, -0.4007662018510919, 0), z_dir=(-0.40076620185109185, -0.9161803596748022, 0)), mode=Mode.PRIVATE) as cut_extrude5_sk1:
        with Locations((9.5, -13.000000223)):
            Circle(SKETCH8_R)
    cut_extrude5_tool1 = split(extrude(cut_extrude5_sk1.sketch, amount=-CUT_EXTRUDE5_REACH, mode=Mode.PRIVATE), bisect_by=cut_extrude5_end, keep=Keep.BOTH, mode=Mode.PRIVATE)
    add(cut_extrude5_tool1.solids().sort_by_distance((-0.230123, -24.230673, -13))[0], mode=Mode.SUBTRACT)

    # Sketch10 → Cut-Extrude6 (cut)
    with BuildSketch(Plane(origin=(-0.571208632, 0.249864682, 0), x_dir=(0, 0, 1), z_dir=(-0.9161803596748025, 0.4007662018510913, 0))):
        with Locations(Location((-4.1353862, -13.399079912, 0), (0, 0, 270))):
            Circle(SKETCH10_R)
        with Locations(Location((-19.8646138, -13.399079912, 0), (0, 0, 270))):
            Circle(SKETCH10_R)
    extrude(amount=-CUT_EXTRUDE6_DEPTH, mode=Mode.SUBTRACT)

    # Sketch11 → Cut-Extrude7 (cut)
    with BuildSketch(Plane(origin=(3.093512806, -1.353200126, 0), x_dir=(0, 0, 1), z_dir=(-0.9161803596748025, 0.40076620185109135, 0))):
        with Locations(Location((-4.1353862, -13.399079912, 0), (0, 0, 270))):
            Circle(SKETCH11_R)
        with Locations(Location((-19.8646138, -13.399079912, 0), (0, 0, 270))):
            Circle(SKETCH11_R)
    extrude(amount=-CUT_EXTRUDE7_DEPTH, mode=Mode.SUBTRACT)


solid = part.part
